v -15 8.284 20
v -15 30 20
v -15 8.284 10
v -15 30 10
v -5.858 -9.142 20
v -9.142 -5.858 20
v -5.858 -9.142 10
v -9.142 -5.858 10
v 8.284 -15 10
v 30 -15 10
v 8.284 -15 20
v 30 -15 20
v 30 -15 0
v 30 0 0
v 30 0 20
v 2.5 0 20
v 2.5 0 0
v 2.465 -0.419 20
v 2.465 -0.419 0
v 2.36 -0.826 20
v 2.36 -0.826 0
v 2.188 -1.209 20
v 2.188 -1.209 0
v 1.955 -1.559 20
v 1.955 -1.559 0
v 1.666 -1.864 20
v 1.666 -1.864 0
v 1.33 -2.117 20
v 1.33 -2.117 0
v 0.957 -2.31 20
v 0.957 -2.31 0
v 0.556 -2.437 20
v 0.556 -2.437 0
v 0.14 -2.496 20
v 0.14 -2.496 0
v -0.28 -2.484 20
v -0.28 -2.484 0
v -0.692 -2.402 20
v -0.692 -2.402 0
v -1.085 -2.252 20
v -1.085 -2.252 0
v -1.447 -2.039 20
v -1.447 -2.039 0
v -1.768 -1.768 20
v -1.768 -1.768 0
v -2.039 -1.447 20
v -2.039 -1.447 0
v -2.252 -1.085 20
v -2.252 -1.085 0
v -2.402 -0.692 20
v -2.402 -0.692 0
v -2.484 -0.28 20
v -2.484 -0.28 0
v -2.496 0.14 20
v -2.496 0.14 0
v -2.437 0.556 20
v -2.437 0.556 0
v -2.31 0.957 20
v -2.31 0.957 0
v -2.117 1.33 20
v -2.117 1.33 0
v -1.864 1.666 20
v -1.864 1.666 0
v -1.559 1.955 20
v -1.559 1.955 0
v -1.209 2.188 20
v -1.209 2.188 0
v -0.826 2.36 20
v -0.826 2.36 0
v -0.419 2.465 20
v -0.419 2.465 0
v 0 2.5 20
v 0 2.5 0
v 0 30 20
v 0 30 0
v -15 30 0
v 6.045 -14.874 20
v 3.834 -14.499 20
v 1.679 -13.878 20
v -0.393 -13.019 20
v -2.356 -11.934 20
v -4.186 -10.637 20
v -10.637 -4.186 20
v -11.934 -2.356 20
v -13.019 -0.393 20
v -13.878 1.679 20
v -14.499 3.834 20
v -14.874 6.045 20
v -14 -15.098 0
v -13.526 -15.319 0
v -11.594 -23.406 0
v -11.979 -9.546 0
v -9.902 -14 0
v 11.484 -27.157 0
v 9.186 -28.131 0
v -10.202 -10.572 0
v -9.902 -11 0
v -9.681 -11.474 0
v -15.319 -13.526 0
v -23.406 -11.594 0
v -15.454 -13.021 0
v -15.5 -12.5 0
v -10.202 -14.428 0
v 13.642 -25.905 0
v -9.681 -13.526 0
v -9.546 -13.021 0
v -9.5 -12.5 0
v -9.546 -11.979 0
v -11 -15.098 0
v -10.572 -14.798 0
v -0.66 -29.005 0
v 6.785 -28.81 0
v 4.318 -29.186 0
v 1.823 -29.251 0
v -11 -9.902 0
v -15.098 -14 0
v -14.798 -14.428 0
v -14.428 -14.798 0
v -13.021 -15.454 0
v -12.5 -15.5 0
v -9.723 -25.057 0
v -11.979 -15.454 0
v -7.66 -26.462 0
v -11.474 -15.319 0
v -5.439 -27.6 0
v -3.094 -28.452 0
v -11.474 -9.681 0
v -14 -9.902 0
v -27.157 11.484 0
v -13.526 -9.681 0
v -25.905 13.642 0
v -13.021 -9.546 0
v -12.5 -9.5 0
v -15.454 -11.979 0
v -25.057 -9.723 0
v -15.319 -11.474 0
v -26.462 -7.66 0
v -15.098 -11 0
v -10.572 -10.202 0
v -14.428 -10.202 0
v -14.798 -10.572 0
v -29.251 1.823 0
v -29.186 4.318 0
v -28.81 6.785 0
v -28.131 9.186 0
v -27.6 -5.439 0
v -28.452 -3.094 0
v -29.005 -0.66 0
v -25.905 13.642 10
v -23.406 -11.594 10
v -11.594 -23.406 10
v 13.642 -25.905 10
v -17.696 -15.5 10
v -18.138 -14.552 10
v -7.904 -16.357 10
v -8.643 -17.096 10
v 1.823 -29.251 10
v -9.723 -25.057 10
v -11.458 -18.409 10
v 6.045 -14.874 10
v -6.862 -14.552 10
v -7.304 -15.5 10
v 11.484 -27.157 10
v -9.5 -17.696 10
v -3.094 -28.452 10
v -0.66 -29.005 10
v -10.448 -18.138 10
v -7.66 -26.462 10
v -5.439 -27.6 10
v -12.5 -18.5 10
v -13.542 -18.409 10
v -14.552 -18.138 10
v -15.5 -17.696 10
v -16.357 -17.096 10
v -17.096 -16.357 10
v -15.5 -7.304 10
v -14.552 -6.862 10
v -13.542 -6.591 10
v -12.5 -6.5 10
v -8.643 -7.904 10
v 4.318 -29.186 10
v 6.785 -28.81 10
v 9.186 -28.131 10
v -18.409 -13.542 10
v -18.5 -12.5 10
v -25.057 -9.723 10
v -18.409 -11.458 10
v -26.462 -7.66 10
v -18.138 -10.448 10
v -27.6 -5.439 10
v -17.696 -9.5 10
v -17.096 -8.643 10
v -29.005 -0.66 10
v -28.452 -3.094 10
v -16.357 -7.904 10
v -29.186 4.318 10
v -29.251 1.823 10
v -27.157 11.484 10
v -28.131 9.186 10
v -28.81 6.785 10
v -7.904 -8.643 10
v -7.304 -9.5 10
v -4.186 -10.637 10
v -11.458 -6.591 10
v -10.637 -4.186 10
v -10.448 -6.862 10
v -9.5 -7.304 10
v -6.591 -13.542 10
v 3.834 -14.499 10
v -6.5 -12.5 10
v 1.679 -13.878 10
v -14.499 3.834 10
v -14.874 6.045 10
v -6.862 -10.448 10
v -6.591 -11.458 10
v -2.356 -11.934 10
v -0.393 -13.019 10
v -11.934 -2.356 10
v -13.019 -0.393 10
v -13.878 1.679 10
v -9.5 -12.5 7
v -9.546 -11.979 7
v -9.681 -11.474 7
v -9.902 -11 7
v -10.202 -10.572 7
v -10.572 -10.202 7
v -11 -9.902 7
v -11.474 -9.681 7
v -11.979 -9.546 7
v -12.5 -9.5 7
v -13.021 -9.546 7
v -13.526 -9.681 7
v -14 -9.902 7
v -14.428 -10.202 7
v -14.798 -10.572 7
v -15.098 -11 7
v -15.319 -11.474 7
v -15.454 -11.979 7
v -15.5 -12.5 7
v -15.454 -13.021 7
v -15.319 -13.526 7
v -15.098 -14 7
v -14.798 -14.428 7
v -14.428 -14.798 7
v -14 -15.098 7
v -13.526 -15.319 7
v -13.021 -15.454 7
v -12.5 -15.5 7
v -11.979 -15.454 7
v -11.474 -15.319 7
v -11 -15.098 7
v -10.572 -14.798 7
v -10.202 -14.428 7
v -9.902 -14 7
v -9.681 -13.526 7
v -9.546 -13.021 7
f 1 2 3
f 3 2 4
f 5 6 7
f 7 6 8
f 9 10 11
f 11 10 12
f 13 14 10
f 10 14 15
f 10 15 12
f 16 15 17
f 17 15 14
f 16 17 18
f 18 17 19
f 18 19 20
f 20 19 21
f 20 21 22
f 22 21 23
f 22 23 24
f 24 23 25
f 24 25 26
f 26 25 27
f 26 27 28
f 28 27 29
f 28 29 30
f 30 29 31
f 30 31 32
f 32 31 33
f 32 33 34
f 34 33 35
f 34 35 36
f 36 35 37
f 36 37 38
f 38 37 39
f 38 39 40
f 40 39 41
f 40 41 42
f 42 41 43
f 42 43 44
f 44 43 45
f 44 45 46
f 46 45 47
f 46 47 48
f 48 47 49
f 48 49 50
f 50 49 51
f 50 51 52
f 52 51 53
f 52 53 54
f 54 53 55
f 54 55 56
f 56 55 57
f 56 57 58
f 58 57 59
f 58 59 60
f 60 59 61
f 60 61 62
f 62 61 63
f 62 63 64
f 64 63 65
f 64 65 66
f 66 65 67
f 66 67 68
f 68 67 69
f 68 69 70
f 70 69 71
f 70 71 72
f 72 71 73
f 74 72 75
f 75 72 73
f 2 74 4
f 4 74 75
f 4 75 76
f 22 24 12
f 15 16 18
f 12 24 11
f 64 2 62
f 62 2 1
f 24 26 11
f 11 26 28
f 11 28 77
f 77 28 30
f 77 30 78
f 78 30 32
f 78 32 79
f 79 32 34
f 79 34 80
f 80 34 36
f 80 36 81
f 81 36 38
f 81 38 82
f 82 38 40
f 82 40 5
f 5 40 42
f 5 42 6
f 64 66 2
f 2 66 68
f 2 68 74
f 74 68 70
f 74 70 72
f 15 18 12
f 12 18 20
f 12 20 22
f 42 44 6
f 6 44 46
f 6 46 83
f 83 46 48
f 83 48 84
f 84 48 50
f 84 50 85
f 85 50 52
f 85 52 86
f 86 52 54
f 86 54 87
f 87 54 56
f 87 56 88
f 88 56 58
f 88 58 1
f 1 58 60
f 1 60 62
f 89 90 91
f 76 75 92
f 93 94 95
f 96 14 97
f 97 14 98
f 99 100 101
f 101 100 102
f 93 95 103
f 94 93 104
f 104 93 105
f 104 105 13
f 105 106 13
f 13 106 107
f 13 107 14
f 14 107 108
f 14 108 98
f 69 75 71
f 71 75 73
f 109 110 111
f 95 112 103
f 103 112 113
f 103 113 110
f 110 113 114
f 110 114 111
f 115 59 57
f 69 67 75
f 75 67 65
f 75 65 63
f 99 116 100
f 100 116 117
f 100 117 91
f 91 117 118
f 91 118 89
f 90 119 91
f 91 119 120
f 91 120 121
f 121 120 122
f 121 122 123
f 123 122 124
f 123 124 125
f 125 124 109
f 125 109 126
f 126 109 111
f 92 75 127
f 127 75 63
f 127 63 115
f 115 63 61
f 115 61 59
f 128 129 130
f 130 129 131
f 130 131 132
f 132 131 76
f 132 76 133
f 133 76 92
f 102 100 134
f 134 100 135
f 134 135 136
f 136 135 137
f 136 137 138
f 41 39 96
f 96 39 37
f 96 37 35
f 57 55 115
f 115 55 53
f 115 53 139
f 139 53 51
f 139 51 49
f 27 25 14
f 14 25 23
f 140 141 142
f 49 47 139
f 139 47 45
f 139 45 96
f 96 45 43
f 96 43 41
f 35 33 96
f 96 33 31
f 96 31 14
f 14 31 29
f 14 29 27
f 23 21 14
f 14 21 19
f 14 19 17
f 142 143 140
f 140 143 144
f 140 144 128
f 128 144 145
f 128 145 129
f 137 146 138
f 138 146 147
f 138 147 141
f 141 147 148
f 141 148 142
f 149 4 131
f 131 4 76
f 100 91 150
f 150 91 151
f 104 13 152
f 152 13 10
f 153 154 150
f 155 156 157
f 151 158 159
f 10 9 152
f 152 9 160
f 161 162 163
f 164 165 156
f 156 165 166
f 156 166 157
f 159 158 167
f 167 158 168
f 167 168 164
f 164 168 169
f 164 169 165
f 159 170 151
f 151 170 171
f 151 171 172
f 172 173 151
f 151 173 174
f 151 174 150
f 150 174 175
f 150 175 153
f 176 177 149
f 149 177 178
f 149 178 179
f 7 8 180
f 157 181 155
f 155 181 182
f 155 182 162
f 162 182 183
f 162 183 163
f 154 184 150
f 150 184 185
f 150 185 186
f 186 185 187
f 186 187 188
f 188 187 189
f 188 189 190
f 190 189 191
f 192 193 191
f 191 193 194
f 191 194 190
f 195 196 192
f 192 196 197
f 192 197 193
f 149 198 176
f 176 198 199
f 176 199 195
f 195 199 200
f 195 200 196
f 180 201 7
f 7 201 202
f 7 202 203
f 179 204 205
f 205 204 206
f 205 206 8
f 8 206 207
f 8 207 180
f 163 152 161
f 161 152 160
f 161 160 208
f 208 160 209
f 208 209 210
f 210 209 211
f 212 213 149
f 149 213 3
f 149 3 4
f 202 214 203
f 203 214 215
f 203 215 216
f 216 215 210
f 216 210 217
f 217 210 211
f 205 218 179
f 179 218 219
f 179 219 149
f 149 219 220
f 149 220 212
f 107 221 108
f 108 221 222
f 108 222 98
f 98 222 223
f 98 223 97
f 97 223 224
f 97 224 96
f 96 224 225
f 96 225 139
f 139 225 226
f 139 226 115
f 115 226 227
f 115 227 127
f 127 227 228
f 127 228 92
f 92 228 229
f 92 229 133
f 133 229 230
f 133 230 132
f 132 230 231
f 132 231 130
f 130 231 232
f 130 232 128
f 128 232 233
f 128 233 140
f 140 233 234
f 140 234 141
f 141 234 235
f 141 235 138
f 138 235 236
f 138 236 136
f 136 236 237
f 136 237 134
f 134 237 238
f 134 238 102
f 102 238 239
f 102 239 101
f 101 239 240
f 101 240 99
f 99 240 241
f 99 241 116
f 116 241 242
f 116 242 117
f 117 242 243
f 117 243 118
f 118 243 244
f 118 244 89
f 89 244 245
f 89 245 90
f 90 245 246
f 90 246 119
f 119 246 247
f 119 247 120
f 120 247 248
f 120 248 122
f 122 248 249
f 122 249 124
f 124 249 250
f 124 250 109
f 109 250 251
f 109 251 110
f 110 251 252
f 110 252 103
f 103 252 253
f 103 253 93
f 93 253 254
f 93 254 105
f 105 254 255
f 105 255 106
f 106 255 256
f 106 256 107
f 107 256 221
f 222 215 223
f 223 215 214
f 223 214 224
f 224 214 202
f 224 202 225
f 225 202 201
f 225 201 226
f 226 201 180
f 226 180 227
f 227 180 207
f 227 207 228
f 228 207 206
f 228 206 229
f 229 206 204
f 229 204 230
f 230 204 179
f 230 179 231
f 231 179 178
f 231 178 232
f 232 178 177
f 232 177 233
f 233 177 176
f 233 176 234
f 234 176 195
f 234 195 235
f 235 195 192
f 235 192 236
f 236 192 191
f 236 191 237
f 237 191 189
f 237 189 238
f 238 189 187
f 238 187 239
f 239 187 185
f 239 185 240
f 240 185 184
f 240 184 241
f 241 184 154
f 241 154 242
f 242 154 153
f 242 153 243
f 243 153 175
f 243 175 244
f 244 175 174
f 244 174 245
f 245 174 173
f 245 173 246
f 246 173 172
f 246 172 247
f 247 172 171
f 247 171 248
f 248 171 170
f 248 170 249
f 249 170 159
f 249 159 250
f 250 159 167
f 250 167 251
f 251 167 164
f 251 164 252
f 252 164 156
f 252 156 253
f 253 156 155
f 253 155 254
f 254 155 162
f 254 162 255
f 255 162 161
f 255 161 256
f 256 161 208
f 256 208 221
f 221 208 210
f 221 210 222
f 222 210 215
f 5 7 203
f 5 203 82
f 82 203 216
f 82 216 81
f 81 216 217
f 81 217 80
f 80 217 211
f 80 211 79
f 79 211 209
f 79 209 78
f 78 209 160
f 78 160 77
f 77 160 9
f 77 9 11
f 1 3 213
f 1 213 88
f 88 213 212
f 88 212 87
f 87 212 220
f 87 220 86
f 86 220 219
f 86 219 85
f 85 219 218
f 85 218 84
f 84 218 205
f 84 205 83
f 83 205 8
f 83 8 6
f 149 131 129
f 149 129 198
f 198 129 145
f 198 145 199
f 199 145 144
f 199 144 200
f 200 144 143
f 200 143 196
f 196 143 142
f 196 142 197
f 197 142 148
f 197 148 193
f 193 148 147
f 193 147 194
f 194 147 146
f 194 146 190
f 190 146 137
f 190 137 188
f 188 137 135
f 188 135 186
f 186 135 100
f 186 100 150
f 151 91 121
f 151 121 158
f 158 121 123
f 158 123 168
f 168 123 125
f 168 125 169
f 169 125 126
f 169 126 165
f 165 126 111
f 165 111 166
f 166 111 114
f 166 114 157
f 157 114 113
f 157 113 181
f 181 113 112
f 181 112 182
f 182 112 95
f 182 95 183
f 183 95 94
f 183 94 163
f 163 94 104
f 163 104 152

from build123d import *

# Parameters (mm, degrees)
ESTRUSIONE_ESTRUSIONE1_DEPTH = 20
ESTRUSIONE_ESTRUSIONE3_DEPTH = 10
TAGLIO_ESTRUSIONE2_DEPTH     = 51.497524692
SMUSSO2_SIZE                 = 3
RACCORDO3_R                  = 20


with BuildPart() as part:
    # Schizzo1 → Estrusione-Estrusione1 (new body)
    with BuildSketch(Plane.XY):
        with BuildLine():
            Line((-15, 0), (0, -15))
            Line((0, -15), (30, -15))
            Line((30, -15), (30, 0))
            Line((30, 0), (2.5, 0))
            ThreePointArc((2.5, 0), (-1.767766953, -1.767766953), (0, 2.5))
            Line((0, 2.5), (0, 30))
            Line((0, 30), (-15, 30))
            Line((-15, 30), (-15, 0))
        make_face()
    extrude(amount=ESTRUSIONE_ESTRUSIONE1_DEPTH)

    # Schizzo2 → Estrusione-Estrusione3 (add)
    with BuildSketch(Plane(origin=(0, 0, 0), x_dir=(-1, 0, 0), z_dir=(0, 0, -1))):
        Polygon((35, 0), (15, 30), (15, 0), (0, -15), (-30, -15), (0, -35), align=None)
    extrude(amount=-ESTRUSIONE_ESTRUSIONE3_DEPTH)

    # Schizzo4 → Taglio-Estrusione2 (cut, through all)
    with BuildSketch(Plane.XY.offset(10)):
        with BuildLine():
            ThreePointArc((-9.5, -12.5), (-9.728361402, -11.351949703), (-10.378679656, -10.378679656))
            Line((-10.378679656, -10.378679656), (-14.621320344, -14.621320344))
            ThreePointArc((-14.621320344, -14.621320344), (-11.351949703, -15.271638598), (-9.5, -12.5))
        make_face()
        with BuildLine():
            Line((-14.621320344, -14.621320344), (-10.378679656, -10.378679656))
            ThreePointArc((-10.378679656, -10.378679656), (-14.621320344, -10.378679656), (-14.621320344, -14.621320344))
        make_face()
    extrude(amount=-TAGLIO_ESTRUSIONE2_DEPTH, mode=Mode.SUBTRACT)

    # Smusso2
    smusso2_edges = [part.edges().sort_by_distance(p)[0] for p in [
        (-10.378679656, -10.378679656, 10),
    ]]
    chamfer(smusso2_edges, length=SMUSSO2_SIZE)

    # Raccordo3
    raccordo3_edges = [part.edges().sort_by_distance(p)[0] for p in [
        (0, -15, 15),
        (-15, 0, 15),
        (-35, 0, 5),
        (0, -35, 5),
    ]]
    fillet(raccordo3_edges, radius=RACCORDO3_R)


solid = part.part
